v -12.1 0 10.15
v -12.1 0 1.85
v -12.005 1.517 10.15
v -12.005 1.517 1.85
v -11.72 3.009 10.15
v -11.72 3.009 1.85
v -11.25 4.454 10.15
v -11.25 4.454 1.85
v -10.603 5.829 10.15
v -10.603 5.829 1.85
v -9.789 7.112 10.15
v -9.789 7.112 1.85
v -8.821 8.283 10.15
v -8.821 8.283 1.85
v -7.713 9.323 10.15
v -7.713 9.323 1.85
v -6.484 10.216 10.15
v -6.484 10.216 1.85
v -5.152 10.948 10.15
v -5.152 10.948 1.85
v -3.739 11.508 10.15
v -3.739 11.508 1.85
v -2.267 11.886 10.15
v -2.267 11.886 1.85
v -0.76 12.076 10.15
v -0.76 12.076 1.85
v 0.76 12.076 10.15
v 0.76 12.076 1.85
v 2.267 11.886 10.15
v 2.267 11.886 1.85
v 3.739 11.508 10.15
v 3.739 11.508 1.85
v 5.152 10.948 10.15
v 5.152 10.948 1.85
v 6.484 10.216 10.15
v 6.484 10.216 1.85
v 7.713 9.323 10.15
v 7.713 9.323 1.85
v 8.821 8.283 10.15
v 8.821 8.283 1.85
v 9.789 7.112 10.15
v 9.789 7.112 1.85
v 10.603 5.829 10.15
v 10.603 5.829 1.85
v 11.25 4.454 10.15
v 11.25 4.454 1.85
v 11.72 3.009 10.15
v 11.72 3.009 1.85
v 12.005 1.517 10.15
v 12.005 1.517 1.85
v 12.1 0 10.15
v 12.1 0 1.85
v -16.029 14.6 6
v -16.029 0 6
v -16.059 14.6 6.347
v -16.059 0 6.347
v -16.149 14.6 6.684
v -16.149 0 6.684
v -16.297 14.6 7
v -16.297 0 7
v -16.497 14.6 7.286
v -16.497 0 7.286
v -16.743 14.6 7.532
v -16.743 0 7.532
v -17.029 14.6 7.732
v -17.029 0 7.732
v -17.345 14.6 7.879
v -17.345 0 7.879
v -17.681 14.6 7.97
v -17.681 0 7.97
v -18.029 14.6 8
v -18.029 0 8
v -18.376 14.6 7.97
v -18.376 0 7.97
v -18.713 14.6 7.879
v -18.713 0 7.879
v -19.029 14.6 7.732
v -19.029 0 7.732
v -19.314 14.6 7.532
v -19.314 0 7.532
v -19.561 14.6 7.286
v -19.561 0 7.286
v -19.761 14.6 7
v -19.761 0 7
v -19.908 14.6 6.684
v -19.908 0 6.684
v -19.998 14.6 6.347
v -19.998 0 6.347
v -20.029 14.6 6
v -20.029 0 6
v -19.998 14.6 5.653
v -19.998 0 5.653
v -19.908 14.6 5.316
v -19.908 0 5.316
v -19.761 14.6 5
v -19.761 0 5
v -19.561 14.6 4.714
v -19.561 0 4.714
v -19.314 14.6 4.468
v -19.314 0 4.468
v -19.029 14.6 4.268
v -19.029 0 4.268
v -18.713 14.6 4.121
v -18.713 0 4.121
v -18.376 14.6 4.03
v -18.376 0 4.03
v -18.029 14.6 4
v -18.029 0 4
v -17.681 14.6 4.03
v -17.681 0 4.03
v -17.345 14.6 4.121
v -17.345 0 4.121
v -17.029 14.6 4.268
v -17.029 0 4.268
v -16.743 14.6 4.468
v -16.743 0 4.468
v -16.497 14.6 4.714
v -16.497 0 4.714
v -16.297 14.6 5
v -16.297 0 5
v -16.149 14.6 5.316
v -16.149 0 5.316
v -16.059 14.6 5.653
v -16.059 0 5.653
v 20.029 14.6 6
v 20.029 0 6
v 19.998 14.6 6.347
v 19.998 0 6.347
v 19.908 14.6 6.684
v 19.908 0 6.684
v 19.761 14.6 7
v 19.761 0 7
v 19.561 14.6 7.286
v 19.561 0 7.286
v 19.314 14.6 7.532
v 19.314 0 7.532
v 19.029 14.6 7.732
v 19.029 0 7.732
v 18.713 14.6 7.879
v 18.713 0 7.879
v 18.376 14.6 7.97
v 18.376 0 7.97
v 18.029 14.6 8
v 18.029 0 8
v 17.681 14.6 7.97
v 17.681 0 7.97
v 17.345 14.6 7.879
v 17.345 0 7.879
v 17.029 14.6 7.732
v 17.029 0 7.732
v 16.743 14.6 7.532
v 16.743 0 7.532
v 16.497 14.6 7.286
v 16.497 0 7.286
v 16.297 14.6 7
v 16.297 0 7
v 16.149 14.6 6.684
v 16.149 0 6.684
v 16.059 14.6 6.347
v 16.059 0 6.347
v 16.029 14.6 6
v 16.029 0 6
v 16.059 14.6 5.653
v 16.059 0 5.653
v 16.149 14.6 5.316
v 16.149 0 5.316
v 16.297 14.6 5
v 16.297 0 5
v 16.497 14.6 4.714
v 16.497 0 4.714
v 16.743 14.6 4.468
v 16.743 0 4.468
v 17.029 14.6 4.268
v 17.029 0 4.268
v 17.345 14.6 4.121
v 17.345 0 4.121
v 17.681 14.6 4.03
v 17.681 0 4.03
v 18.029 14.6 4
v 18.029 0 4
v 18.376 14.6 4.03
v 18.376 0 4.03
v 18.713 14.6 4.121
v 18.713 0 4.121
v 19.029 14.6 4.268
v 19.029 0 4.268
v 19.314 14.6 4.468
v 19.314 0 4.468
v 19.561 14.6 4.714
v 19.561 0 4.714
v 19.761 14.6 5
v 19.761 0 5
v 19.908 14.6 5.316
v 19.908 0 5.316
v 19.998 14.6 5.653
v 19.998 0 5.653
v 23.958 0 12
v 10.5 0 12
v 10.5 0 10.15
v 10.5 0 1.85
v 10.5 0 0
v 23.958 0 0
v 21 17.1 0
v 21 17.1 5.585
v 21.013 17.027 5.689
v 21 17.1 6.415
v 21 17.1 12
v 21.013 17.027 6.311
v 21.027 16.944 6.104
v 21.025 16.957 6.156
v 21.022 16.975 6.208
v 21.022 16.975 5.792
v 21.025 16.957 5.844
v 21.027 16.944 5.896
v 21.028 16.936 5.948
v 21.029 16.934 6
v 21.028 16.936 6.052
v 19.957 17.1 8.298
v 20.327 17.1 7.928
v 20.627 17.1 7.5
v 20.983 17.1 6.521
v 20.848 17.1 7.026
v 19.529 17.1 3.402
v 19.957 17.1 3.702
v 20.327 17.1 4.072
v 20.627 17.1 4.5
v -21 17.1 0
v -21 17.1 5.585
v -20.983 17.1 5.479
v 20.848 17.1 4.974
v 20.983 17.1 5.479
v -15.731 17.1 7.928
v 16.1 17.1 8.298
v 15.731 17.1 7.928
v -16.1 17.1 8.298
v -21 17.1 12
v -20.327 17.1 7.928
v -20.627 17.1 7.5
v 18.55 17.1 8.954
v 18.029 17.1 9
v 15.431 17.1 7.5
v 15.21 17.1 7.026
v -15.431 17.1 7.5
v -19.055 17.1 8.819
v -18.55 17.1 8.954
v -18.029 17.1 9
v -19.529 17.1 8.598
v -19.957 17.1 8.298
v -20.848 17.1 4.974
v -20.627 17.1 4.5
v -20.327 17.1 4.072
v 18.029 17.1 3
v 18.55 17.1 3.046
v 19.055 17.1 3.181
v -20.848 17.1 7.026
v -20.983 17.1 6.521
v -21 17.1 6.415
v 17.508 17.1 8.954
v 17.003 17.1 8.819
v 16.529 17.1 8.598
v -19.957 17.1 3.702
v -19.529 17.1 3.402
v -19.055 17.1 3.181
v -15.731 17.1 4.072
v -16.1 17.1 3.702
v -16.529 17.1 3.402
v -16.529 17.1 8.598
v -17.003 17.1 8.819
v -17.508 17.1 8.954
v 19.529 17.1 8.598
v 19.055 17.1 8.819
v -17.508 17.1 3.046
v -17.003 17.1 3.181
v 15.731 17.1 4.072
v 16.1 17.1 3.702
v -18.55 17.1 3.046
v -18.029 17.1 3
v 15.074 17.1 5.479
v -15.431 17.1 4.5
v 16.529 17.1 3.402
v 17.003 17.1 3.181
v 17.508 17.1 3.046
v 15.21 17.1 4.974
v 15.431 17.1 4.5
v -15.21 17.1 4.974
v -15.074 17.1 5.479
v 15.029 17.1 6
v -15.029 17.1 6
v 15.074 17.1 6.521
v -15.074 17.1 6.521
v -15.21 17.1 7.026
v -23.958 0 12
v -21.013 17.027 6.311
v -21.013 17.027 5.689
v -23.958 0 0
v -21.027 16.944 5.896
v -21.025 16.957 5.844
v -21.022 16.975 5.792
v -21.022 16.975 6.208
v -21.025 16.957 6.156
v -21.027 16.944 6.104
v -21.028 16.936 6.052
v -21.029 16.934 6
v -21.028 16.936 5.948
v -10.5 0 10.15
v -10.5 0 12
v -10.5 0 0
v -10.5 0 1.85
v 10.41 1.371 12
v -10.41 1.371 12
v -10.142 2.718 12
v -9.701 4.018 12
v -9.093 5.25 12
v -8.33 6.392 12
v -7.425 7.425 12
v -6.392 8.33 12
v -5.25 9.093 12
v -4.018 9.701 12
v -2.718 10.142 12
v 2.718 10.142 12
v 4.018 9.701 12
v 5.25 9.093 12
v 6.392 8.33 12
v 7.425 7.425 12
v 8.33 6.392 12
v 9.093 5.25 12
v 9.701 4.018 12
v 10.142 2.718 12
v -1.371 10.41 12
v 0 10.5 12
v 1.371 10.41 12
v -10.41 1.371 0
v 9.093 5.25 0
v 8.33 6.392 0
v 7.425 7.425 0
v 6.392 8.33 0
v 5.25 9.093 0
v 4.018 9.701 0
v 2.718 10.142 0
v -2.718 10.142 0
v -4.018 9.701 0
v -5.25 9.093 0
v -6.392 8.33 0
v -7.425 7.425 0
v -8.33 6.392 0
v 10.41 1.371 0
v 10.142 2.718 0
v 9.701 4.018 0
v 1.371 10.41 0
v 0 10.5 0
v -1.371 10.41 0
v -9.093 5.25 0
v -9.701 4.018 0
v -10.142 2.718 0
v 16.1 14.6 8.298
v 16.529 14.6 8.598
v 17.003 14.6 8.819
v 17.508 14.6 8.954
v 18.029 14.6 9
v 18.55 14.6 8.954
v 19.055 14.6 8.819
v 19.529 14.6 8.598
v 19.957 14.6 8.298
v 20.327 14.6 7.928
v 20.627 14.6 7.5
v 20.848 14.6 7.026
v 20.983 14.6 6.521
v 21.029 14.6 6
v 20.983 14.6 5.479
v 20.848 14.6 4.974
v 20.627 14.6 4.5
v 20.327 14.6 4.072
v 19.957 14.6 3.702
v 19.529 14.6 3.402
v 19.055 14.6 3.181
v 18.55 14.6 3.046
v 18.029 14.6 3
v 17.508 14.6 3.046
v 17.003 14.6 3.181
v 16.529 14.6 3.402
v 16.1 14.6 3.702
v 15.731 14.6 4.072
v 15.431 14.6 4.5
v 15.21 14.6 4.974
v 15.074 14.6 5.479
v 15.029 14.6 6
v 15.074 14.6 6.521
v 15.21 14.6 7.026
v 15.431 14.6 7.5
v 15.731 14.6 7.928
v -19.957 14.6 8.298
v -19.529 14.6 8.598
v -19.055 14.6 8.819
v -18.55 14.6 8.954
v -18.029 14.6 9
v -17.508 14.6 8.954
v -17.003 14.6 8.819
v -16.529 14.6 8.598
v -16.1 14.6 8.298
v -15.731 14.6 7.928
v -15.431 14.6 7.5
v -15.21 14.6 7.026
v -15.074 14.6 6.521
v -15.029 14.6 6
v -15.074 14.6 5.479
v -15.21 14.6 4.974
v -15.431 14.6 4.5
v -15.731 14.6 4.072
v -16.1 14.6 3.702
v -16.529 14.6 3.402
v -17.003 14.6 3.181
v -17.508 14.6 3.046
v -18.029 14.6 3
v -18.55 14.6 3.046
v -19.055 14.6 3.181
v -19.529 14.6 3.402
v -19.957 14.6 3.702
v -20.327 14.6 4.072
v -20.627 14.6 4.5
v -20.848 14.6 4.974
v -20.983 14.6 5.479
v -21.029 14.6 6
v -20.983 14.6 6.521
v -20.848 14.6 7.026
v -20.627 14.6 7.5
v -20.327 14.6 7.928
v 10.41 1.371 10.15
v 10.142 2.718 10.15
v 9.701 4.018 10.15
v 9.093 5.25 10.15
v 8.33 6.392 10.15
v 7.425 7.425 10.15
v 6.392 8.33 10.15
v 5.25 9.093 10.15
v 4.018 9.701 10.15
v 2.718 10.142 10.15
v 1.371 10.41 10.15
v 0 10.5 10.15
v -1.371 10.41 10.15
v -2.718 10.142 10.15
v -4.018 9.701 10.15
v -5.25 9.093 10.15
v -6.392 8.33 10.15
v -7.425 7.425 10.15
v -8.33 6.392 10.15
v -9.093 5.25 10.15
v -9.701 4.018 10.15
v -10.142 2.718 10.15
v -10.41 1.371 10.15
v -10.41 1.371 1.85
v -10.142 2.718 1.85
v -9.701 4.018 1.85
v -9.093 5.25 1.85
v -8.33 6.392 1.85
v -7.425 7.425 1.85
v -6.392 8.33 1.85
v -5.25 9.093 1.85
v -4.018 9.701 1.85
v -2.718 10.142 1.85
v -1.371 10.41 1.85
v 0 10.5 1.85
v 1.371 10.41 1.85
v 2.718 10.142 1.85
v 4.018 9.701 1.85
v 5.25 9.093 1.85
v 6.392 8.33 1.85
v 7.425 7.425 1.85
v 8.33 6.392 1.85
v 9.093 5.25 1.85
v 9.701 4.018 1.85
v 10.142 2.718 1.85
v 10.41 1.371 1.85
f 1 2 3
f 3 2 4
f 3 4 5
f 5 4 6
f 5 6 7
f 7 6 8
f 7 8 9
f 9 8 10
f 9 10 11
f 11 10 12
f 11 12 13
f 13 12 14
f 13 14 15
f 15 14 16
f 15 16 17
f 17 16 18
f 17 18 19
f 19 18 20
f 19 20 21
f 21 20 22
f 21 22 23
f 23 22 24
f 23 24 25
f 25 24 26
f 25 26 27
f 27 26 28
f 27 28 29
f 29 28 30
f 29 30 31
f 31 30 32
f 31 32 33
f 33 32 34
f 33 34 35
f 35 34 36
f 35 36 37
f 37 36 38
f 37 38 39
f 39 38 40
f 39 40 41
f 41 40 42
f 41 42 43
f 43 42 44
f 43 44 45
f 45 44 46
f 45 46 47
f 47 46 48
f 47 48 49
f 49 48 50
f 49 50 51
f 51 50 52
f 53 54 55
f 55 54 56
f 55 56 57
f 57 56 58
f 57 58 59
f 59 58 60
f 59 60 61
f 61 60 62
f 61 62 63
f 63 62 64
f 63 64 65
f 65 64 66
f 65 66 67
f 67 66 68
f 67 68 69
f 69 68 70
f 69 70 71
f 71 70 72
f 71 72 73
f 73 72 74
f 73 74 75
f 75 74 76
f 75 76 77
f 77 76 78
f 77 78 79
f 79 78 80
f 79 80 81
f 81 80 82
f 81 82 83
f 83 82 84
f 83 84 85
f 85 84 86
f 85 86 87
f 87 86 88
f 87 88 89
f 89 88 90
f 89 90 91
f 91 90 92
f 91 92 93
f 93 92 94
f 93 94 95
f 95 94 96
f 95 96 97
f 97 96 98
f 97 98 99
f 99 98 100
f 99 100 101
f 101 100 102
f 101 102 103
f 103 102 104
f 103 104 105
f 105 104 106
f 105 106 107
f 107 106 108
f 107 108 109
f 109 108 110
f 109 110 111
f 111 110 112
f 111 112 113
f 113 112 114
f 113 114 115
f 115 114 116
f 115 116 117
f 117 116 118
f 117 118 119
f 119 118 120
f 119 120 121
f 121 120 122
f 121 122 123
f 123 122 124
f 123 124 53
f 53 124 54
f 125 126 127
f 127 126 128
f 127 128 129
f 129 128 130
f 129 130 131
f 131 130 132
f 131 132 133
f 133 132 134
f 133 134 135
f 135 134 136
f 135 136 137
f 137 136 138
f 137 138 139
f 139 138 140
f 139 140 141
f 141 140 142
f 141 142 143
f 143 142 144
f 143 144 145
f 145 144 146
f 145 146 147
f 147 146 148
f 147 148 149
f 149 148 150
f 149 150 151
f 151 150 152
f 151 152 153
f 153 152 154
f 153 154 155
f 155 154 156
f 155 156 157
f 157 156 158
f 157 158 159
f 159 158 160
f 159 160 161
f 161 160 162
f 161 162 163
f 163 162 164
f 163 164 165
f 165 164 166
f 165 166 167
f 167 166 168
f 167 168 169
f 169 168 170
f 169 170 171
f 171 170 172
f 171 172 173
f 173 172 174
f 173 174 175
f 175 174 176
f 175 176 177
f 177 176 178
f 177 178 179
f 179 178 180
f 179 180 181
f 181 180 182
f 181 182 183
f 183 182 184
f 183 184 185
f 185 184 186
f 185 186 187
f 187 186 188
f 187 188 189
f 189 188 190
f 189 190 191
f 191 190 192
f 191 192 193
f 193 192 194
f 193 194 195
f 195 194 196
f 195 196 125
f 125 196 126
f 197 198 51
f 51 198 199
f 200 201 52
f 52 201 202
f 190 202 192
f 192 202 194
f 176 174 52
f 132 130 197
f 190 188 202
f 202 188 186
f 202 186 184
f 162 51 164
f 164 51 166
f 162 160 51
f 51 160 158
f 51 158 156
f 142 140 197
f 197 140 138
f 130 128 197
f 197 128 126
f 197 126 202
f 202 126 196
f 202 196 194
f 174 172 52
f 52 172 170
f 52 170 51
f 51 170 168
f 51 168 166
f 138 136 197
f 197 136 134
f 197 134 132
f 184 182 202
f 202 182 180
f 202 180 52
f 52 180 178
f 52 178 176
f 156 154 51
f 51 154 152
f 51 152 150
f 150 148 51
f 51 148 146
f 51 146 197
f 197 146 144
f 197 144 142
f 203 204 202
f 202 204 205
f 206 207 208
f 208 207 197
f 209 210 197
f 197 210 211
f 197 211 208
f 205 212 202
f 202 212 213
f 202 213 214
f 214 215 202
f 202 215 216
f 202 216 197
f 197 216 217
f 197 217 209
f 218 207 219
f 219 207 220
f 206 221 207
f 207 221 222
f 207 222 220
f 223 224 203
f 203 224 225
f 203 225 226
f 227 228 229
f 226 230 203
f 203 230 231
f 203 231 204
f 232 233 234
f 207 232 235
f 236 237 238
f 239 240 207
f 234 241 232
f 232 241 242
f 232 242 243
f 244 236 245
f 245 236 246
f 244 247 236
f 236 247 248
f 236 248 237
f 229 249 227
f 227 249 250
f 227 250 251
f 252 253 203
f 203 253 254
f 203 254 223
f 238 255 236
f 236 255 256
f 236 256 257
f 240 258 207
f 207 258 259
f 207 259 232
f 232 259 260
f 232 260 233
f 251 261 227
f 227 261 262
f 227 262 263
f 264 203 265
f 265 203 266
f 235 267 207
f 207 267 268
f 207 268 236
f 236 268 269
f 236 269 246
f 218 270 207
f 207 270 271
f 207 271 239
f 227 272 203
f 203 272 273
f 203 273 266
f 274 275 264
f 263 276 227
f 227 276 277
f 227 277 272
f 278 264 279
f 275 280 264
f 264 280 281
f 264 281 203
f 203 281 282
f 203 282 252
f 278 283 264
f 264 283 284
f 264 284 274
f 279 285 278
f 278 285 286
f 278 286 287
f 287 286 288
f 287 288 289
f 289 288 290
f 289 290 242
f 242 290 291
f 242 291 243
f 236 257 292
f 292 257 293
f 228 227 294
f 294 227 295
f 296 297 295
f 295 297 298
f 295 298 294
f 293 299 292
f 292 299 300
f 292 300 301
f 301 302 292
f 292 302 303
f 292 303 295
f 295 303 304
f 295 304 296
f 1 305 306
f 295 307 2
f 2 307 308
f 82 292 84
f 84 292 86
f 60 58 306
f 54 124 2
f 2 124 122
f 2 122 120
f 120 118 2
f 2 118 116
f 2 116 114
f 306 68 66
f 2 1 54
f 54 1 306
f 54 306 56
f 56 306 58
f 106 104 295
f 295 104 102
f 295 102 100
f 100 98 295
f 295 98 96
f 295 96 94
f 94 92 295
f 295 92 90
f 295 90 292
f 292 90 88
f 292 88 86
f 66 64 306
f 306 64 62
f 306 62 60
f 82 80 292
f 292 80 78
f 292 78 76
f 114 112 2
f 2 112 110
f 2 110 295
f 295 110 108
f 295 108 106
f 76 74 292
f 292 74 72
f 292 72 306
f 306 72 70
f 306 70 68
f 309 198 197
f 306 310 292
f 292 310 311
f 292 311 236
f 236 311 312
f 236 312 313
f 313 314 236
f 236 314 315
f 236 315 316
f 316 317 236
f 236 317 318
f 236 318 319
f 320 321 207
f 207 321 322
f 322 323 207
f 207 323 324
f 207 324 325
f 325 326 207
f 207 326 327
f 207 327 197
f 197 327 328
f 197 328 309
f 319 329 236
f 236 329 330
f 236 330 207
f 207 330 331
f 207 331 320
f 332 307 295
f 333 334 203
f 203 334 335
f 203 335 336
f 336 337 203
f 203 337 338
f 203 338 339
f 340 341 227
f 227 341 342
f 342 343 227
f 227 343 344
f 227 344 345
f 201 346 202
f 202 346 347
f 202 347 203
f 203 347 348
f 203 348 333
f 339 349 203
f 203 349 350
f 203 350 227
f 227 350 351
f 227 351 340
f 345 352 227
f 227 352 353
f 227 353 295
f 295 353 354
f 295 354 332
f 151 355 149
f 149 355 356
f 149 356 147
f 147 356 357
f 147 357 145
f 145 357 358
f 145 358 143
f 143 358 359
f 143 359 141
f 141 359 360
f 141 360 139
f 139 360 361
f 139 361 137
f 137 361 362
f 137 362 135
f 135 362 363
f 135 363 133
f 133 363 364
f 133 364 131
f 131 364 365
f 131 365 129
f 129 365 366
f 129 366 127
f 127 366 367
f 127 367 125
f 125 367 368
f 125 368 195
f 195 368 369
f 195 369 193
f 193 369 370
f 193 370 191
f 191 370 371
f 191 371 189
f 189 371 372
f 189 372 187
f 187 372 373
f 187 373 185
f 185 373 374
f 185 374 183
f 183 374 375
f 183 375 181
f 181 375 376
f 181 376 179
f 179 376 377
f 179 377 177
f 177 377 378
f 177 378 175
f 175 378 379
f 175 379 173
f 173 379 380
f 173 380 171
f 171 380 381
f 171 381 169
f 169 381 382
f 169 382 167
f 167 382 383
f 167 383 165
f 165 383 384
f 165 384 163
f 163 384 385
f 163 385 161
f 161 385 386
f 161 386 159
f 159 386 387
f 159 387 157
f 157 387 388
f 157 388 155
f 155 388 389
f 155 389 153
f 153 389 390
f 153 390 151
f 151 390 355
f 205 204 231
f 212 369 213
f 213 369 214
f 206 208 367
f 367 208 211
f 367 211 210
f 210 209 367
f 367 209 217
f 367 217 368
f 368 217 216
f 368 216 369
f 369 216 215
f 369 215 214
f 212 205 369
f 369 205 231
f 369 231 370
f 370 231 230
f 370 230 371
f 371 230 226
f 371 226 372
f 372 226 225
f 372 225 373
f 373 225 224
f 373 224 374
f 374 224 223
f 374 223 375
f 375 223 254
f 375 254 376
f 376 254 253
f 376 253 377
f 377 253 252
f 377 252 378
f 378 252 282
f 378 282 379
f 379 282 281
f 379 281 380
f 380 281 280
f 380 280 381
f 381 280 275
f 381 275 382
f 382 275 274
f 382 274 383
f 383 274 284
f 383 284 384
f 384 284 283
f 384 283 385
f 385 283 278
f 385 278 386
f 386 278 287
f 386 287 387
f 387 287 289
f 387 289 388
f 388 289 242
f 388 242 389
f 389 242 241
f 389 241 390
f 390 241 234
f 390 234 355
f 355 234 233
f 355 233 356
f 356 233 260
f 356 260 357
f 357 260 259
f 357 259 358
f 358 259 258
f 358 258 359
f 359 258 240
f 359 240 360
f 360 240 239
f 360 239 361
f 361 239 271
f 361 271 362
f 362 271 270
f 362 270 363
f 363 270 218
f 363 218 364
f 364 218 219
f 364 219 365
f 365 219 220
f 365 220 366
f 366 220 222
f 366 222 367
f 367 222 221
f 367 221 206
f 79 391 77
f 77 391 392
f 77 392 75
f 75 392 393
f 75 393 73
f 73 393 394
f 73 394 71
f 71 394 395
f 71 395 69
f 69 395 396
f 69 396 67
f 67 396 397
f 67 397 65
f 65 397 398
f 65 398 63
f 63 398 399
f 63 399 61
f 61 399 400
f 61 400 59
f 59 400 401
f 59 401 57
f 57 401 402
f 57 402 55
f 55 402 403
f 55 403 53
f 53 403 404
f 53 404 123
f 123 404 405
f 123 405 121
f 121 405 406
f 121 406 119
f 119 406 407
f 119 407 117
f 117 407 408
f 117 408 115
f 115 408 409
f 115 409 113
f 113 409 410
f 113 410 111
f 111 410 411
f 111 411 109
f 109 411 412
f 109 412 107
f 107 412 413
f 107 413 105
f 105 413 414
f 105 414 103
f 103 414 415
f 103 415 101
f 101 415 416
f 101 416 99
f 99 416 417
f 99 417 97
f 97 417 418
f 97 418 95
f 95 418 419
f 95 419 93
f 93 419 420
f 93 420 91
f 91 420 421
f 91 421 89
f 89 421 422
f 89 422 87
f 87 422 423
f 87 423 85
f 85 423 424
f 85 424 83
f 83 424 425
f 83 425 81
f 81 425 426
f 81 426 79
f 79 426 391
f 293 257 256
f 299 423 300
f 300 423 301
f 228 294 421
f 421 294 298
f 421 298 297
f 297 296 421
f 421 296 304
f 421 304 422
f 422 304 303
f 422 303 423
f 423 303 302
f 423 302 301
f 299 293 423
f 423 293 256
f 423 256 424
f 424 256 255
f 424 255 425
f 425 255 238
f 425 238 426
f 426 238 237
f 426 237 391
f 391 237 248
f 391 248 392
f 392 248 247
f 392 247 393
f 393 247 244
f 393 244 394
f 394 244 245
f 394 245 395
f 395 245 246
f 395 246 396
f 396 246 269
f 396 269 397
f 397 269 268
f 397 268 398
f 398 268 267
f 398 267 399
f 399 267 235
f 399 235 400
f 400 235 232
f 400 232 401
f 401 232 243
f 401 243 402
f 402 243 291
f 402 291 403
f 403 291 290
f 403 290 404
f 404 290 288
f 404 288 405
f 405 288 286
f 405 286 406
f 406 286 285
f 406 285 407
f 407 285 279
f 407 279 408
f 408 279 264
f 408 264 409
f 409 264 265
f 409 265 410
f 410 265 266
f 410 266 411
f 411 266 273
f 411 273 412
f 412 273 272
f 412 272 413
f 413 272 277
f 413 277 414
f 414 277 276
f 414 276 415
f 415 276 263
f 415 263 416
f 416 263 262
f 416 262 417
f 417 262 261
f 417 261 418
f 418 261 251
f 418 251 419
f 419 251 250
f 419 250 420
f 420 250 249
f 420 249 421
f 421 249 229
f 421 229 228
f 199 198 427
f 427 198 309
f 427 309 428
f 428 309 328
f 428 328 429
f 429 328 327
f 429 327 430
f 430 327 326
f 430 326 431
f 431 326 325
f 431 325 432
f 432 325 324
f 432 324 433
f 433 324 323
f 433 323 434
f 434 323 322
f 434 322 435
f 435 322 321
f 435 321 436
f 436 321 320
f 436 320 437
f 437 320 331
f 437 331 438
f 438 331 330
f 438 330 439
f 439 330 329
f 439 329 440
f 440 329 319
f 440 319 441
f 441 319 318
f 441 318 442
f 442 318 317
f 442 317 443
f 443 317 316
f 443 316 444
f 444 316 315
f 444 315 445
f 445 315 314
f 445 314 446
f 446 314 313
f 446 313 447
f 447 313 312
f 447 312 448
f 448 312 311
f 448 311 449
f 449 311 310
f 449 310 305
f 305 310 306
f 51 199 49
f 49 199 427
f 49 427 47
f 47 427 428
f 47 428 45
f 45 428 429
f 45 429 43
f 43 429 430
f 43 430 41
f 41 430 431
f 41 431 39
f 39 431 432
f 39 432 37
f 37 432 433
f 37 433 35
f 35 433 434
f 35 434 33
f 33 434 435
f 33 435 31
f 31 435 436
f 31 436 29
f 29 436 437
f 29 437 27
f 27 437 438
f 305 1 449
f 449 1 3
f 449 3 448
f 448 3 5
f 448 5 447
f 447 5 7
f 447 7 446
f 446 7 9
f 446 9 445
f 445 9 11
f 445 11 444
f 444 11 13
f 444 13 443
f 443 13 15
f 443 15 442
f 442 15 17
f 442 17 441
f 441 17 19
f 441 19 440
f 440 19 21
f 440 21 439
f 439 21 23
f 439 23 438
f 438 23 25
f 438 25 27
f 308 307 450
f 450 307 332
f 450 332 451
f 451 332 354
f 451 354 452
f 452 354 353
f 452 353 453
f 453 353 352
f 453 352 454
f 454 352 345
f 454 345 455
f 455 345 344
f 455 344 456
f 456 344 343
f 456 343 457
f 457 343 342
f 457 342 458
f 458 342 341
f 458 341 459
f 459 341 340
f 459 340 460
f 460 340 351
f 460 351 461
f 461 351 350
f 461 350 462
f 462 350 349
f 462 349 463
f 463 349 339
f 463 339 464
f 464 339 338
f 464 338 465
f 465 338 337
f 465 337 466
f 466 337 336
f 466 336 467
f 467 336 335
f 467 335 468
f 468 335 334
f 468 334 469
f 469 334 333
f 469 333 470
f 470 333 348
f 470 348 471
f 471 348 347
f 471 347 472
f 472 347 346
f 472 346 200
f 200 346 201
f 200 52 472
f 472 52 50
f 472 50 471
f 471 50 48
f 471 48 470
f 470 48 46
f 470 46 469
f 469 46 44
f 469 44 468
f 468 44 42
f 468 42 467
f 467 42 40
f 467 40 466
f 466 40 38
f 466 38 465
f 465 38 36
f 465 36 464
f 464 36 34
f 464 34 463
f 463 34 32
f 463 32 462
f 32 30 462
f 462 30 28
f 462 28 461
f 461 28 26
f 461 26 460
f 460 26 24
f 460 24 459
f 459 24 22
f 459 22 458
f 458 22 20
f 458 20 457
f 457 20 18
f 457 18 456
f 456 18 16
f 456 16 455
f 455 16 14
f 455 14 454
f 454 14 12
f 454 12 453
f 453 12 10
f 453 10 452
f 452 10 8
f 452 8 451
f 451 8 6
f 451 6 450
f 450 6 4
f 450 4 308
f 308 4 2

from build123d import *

# Parameters (mm, degrees)
ESTRUSIONE_ESTRUSIONE1_DEPTH = 12
SCHIZZO2_R                   = 2
TAGLIO_ESTRUSIONE1_DEPTH     = 32.786381776
SCHIZZO3_R                   = 3
TAGLIO_ESTRUSIONE2_DEPTH     = 2.5
ESTRUSIONE_ESTRUSIONE2_START = -1.85
ESTRUSIONE_ESTRUSIONE2_DEPTH = 1.85
ESTRUSIONE_ESTRUSIONE3_DEPTH = 1.85


with BuildPart() as part:
    # Schizzo1 → Estrusione-Estrusione1 (new body)
    with BuildSketch(Plane.XY):
        with BuildLine():
            Line((21, 17.1), (-21, 17.1))
            Line((-21, 17.1), (-21, 0))
            Line((-21, 0), (-12.1, 0))
            ThreePointArc((-12.1, 0), (0, 12.1), (12.1, 0))
            Line((12.1, 0), (21, 0))
            Line((21, 0), (21, 17.1))
        make_face()
        Polygon((-21, 17.1), (-23.95754717, 0), (-21, 0), align=None)
        Polygon((21, 0), (23.95754717, 0), (21, 17.1), align=None)
    extrude(amount=ESTRUSIONE_ESTRUSIONE1_DEPTH)

    # Schizzo2 → Taglio-Estrusione1 (cut, through all)
    with BuildSketch(Plane.XZ):
        with Locations((-18.028773585, 6)):
            Circle(SCHIZZO2_R)
        with Locations((18.028773585, 6)):
            Circle(SCHIZZO2_R)
    extrude(amount=-TAGLIO_ESTRUSIONE1_DEPTH, mode=Mode.SUBTRACT)

    # Schizzo3 → Taglio-Estrusione2 (cut)
    with BuildSketch(Plane(origin=(0, 17.1, 0), x_dir=(1, 0, 0), z_dir=(0, 1, 0))):
        with Locations(Location((-18.028773585, -6, 0), (0, 0, 180))):
            Circle(SCHIZZO3_R)
        with Locations(Location((18.028773585, -6, 0), (0, 0, 180))):
            Circle(SCHIZZO3_R)
    extrude(amount=-TAGLIO_ESTRUSIONE2_DEPTH, mode=Mode.SUBTRACT)

    # Schizzo4 → Estrusione-Estrusione2 (add)
    with BuildSketch(Plane.XY.offset(12).offset(ESTRUSIONE_ESTRUSIONE2_START)):
        with BuildLine():
            ThreePointArc((-10.5, 0), (0, 10.5), (10.5, 0))
            Line((10.5, 0), (12.1, 0))
            ThreePointArc((12.1, 0), (0, 12.1), (-12.1, 0))
            Line((-12.1, 0), (-10.5, 0))
        make_face()
    extrude(amount=ESTRUSIONE_ESTRUSIONE2_DEPTH)

    # Schizzo5 → Estrusione-Estrusione3 (add)
    with BuildSketch(Plane(origin=(0, 0, 0), x_dir=(-1, 0, 0), z_dir=(0, 0, -1))):
        with BuildLine():
            Line((10.5, 0), (12.1, 0))
            ThreePointArc((12.1, 0), (0, 12.1), (-12.1, 0))
            Line((-12.1, 0), (-10.5, 0))
            ThreePointArc((-10.5, 0), (0, 10.5), (10.5, 0))
        make_face()
    extrude(amount=-ESTRUSIONE_ESTRUSIONE3_DEPTH)


solid = part.part
